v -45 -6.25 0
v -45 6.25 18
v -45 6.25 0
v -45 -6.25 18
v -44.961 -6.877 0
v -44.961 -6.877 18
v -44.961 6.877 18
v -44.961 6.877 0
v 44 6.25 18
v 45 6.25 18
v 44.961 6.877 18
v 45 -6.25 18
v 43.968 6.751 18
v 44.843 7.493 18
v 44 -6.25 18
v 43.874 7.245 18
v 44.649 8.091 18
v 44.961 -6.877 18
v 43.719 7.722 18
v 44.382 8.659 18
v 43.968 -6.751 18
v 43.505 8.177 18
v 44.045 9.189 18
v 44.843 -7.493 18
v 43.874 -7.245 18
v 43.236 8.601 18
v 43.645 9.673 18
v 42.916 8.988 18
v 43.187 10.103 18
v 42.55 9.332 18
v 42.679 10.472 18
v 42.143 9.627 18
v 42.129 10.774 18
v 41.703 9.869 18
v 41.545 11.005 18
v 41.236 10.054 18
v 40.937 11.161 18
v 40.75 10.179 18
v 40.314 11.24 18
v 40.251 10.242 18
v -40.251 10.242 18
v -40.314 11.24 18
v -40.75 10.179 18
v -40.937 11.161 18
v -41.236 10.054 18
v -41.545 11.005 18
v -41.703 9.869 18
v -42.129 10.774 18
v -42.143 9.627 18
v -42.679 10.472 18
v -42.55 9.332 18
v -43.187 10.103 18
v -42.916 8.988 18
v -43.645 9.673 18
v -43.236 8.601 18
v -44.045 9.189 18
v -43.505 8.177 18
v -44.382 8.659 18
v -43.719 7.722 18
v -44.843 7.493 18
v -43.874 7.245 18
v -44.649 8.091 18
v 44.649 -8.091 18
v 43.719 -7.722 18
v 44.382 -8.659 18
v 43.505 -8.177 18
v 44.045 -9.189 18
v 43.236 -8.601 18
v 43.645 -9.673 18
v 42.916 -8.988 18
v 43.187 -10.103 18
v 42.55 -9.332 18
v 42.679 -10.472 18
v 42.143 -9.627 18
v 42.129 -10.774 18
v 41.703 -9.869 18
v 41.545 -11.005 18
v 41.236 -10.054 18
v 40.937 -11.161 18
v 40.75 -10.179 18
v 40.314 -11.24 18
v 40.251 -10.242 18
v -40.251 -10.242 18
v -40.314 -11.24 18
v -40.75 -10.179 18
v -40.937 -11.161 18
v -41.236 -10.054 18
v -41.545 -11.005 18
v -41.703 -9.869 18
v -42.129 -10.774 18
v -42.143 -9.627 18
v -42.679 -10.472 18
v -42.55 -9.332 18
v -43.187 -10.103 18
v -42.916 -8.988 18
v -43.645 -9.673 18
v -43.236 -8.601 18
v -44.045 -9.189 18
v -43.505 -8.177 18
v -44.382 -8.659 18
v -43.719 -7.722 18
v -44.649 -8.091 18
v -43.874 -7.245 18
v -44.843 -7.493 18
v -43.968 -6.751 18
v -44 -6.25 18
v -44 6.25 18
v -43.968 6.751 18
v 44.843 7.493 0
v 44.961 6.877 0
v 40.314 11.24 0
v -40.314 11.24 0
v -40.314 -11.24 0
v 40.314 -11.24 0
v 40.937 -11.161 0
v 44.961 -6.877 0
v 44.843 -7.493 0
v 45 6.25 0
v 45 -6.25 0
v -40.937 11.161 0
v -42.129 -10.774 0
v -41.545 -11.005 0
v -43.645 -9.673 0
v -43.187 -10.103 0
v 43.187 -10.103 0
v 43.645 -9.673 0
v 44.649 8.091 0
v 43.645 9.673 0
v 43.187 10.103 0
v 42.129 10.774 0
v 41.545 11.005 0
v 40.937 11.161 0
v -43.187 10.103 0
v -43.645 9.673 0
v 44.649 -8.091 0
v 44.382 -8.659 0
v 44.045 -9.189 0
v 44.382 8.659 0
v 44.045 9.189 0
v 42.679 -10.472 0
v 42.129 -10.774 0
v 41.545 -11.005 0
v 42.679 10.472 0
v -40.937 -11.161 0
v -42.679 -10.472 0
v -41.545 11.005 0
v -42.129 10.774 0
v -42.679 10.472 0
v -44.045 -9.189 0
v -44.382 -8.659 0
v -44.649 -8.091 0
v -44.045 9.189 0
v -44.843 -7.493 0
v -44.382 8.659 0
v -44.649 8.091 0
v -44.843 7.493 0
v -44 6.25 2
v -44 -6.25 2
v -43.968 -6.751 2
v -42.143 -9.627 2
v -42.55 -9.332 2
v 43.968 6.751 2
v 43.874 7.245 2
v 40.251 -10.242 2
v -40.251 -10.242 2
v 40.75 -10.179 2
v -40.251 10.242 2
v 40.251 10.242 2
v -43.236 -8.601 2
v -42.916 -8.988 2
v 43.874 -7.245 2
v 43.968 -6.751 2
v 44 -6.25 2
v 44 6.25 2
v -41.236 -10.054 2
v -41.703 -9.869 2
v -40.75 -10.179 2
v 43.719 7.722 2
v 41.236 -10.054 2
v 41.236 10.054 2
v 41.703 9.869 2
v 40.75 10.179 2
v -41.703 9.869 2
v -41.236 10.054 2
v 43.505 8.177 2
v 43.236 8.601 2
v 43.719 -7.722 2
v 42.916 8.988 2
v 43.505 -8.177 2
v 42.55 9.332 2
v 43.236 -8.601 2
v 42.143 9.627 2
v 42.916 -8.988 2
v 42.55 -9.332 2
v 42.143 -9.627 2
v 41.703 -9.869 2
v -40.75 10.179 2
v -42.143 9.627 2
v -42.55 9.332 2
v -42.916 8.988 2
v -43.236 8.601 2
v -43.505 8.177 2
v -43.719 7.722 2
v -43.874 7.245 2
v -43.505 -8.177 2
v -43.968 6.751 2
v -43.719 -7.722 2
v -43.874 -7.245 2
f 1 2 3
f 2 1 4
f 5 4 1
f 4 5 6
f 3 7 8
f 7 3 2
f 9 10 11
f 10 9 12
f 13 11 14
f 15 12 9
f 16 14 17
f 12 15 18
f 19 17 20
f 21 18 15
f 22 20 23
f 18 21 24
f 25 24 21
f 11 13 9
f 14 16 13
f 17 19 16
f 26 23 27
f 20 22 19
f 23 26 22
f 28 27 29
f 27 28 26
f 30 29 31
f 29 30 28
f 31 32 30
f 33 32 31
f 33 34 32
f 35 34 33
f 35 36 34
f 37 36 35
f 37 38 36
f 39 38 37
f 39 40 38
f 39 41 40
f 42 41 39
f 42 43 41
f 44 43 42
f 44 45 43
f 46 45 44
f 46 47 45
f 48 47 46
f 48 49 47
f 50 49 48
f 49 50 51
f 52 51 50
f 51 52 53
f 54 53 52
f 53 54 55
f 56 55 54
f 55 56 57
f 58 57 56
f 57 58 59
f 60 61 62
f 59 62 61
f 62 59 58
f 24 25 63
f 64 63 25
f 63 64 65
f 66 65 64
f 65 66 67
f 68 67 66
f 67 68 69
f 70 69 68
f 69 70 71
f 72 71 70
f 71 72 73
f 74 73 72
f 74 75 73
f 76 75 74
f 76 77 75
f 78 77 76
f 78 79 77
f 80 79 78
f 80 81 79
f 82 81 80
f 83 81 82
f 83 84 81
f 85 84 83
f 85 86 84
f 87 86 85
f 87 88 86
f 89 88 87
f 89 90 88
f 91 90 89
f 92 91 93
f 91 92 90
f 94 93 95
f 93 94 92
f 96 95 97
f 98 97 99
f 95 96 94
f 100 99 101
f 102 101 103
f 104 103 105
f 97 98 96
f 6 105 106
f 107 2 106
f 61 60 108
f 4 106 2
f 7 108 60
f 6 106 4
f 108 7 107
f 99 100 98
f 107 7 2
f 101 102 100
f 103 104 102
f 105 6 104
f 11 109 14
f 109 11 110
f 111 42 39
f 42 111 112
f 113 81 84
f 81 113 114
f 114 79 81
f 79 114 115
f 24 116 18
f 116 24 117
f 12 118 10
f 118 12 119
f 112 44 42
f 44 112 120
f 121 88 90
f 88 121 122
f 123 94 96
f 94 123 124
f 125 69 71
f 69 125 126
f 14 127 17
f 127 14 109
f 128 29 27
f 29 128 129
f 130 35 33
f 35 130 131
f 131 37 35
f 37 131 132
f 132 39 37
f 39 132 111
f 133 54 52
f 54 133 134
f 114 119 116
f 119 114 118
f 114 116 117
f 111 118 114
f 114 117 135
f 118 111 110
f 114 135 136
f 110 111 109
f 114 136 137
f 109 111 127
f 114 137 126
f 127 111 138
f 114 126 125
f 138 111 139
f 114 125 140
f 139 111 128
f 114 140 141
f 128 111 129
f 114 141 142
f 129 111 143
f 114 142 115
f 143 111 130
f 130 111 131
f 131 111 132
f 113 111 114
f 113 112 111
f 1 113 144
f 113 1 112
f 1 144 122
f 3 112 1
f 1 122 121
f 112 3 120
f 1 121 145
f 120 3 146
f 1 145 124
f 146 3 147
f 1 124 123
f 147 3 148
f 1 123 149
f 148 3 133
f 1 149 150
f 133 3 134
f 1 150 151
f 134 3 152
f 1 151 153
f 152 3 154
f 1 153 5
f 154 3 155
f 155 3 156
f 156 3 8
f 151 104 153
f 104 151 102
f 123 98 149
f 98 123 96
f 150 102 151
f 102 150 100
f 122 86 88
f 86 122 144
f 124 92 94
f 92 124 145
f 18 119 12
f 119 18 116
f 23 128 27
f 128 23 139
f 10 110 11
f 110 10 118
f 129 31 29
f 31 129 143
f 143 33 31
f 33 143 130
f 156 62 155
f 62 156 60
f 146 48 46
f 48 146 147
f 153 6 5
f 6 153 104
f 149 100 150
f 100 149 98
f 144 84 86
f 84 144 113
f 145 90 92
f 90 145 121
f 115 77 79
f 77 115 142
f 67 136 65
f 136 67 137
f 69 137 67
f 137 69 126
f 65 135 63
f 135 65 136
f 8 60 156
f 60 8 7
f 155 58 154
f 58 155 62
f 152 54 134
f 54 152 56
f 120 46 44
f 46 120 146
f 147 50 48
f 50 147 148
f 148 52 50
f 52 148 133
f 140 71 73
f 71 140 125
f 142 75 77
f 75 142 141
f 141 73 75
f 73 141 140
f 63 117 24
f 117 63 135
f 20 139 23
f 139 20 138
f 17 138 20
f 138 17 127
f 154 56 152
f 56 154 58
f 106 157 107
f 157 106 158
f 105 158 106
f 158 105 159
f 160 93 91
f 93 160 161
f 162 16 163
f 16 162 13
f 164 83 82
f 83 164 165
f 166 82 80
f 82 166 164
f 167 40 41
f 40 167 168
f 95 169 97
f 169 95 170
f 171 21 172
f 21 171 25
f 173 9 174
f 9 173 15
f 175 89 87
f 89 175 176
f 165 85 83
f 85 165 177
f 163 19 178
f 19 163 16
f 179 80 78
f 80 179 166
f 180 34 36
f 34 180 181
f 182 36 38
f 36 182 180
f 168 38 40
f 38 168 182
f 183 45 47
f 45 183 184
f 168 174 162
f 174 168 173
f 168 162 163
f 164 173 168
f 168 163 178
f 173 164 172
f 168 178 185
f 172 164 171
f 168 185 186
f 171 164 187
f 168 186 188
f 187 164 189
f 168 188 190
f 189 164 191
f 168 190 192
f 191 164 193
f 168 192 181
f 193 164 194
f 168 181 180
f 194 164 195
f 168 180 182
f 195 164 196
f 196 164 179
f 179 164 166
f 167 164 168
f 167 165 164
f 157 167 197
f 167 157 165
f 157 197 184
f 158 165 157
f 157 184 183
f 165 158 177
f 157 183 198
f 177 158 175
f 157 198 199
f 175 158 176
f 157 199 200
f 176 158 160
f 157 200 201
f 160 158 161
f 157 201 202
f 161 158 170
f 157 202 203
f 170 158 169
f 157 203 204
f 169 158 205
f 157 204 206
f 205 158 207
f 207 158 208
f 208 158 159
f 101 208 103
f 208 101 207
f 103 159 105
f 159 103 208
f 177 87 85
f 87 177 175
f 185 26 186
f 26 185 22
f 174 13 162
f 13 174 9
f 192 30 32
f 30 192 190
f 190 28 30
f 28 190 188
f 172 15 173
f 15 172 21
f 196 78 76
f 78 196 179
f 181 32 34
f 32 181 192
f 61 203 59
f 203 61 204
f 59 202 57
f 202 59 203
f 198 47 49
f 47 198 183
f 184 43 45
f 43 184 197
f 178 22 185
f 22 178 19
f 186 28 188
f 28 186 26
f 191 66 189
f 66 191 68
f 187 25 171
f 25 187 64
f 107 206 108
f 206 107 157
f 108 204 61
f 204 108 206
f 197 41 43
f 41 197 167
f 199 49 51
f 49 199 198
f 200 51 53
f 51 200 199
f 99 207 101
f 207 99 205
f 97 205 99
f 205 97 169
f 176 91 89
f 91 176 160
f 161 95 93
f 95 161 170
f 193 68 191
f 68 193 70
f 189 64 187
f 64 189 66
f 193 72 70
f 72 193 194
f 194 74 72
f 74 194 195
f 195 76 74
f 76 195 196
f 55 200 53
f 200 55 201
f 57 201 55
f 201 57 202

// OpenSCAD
$fn = 50;


difference() {
	union() {
		hull() {
			translate(v = [-40.0000000000, 6.2500000000, 0]) {
				cylinder(h = 18, r = 5);
			}
			translate(v = [40.0000000000, 6.2500000000, 0]) {
				cylinder(h = 18, r = 5);
			}
			translate(v = [-40.0000000000, -6.2500000000, 0]) {
				cylinder(h = 18, r = 5);
			}
			translate(v = [40.0000000000, -6.2500000000, 0]) {
				cylinder(h = 18, r = 5);
			}
		}
	}
	union() {
		translate(v = [0, 0, 2]) {
			#hull() {
				translate(v = [-40.0000000000, 6.2500000000, 0]) {
					cylinder(h = 16, r = 4);
				}
				translate(v = [40.0000000000, 6.2500000000, 0]) {
					cylinder(h = 16, r = 4);
				}
				translate(v = [-40.0000000000, -6.2500000000, 0]) {
					cylinder(h = 16, r = 4);
				}
				translate(v = [40.0000000000, -6.2500000000, 0]) {
					cylinder(h = 16, r = 4);
				}
			}
		}
	}
}
